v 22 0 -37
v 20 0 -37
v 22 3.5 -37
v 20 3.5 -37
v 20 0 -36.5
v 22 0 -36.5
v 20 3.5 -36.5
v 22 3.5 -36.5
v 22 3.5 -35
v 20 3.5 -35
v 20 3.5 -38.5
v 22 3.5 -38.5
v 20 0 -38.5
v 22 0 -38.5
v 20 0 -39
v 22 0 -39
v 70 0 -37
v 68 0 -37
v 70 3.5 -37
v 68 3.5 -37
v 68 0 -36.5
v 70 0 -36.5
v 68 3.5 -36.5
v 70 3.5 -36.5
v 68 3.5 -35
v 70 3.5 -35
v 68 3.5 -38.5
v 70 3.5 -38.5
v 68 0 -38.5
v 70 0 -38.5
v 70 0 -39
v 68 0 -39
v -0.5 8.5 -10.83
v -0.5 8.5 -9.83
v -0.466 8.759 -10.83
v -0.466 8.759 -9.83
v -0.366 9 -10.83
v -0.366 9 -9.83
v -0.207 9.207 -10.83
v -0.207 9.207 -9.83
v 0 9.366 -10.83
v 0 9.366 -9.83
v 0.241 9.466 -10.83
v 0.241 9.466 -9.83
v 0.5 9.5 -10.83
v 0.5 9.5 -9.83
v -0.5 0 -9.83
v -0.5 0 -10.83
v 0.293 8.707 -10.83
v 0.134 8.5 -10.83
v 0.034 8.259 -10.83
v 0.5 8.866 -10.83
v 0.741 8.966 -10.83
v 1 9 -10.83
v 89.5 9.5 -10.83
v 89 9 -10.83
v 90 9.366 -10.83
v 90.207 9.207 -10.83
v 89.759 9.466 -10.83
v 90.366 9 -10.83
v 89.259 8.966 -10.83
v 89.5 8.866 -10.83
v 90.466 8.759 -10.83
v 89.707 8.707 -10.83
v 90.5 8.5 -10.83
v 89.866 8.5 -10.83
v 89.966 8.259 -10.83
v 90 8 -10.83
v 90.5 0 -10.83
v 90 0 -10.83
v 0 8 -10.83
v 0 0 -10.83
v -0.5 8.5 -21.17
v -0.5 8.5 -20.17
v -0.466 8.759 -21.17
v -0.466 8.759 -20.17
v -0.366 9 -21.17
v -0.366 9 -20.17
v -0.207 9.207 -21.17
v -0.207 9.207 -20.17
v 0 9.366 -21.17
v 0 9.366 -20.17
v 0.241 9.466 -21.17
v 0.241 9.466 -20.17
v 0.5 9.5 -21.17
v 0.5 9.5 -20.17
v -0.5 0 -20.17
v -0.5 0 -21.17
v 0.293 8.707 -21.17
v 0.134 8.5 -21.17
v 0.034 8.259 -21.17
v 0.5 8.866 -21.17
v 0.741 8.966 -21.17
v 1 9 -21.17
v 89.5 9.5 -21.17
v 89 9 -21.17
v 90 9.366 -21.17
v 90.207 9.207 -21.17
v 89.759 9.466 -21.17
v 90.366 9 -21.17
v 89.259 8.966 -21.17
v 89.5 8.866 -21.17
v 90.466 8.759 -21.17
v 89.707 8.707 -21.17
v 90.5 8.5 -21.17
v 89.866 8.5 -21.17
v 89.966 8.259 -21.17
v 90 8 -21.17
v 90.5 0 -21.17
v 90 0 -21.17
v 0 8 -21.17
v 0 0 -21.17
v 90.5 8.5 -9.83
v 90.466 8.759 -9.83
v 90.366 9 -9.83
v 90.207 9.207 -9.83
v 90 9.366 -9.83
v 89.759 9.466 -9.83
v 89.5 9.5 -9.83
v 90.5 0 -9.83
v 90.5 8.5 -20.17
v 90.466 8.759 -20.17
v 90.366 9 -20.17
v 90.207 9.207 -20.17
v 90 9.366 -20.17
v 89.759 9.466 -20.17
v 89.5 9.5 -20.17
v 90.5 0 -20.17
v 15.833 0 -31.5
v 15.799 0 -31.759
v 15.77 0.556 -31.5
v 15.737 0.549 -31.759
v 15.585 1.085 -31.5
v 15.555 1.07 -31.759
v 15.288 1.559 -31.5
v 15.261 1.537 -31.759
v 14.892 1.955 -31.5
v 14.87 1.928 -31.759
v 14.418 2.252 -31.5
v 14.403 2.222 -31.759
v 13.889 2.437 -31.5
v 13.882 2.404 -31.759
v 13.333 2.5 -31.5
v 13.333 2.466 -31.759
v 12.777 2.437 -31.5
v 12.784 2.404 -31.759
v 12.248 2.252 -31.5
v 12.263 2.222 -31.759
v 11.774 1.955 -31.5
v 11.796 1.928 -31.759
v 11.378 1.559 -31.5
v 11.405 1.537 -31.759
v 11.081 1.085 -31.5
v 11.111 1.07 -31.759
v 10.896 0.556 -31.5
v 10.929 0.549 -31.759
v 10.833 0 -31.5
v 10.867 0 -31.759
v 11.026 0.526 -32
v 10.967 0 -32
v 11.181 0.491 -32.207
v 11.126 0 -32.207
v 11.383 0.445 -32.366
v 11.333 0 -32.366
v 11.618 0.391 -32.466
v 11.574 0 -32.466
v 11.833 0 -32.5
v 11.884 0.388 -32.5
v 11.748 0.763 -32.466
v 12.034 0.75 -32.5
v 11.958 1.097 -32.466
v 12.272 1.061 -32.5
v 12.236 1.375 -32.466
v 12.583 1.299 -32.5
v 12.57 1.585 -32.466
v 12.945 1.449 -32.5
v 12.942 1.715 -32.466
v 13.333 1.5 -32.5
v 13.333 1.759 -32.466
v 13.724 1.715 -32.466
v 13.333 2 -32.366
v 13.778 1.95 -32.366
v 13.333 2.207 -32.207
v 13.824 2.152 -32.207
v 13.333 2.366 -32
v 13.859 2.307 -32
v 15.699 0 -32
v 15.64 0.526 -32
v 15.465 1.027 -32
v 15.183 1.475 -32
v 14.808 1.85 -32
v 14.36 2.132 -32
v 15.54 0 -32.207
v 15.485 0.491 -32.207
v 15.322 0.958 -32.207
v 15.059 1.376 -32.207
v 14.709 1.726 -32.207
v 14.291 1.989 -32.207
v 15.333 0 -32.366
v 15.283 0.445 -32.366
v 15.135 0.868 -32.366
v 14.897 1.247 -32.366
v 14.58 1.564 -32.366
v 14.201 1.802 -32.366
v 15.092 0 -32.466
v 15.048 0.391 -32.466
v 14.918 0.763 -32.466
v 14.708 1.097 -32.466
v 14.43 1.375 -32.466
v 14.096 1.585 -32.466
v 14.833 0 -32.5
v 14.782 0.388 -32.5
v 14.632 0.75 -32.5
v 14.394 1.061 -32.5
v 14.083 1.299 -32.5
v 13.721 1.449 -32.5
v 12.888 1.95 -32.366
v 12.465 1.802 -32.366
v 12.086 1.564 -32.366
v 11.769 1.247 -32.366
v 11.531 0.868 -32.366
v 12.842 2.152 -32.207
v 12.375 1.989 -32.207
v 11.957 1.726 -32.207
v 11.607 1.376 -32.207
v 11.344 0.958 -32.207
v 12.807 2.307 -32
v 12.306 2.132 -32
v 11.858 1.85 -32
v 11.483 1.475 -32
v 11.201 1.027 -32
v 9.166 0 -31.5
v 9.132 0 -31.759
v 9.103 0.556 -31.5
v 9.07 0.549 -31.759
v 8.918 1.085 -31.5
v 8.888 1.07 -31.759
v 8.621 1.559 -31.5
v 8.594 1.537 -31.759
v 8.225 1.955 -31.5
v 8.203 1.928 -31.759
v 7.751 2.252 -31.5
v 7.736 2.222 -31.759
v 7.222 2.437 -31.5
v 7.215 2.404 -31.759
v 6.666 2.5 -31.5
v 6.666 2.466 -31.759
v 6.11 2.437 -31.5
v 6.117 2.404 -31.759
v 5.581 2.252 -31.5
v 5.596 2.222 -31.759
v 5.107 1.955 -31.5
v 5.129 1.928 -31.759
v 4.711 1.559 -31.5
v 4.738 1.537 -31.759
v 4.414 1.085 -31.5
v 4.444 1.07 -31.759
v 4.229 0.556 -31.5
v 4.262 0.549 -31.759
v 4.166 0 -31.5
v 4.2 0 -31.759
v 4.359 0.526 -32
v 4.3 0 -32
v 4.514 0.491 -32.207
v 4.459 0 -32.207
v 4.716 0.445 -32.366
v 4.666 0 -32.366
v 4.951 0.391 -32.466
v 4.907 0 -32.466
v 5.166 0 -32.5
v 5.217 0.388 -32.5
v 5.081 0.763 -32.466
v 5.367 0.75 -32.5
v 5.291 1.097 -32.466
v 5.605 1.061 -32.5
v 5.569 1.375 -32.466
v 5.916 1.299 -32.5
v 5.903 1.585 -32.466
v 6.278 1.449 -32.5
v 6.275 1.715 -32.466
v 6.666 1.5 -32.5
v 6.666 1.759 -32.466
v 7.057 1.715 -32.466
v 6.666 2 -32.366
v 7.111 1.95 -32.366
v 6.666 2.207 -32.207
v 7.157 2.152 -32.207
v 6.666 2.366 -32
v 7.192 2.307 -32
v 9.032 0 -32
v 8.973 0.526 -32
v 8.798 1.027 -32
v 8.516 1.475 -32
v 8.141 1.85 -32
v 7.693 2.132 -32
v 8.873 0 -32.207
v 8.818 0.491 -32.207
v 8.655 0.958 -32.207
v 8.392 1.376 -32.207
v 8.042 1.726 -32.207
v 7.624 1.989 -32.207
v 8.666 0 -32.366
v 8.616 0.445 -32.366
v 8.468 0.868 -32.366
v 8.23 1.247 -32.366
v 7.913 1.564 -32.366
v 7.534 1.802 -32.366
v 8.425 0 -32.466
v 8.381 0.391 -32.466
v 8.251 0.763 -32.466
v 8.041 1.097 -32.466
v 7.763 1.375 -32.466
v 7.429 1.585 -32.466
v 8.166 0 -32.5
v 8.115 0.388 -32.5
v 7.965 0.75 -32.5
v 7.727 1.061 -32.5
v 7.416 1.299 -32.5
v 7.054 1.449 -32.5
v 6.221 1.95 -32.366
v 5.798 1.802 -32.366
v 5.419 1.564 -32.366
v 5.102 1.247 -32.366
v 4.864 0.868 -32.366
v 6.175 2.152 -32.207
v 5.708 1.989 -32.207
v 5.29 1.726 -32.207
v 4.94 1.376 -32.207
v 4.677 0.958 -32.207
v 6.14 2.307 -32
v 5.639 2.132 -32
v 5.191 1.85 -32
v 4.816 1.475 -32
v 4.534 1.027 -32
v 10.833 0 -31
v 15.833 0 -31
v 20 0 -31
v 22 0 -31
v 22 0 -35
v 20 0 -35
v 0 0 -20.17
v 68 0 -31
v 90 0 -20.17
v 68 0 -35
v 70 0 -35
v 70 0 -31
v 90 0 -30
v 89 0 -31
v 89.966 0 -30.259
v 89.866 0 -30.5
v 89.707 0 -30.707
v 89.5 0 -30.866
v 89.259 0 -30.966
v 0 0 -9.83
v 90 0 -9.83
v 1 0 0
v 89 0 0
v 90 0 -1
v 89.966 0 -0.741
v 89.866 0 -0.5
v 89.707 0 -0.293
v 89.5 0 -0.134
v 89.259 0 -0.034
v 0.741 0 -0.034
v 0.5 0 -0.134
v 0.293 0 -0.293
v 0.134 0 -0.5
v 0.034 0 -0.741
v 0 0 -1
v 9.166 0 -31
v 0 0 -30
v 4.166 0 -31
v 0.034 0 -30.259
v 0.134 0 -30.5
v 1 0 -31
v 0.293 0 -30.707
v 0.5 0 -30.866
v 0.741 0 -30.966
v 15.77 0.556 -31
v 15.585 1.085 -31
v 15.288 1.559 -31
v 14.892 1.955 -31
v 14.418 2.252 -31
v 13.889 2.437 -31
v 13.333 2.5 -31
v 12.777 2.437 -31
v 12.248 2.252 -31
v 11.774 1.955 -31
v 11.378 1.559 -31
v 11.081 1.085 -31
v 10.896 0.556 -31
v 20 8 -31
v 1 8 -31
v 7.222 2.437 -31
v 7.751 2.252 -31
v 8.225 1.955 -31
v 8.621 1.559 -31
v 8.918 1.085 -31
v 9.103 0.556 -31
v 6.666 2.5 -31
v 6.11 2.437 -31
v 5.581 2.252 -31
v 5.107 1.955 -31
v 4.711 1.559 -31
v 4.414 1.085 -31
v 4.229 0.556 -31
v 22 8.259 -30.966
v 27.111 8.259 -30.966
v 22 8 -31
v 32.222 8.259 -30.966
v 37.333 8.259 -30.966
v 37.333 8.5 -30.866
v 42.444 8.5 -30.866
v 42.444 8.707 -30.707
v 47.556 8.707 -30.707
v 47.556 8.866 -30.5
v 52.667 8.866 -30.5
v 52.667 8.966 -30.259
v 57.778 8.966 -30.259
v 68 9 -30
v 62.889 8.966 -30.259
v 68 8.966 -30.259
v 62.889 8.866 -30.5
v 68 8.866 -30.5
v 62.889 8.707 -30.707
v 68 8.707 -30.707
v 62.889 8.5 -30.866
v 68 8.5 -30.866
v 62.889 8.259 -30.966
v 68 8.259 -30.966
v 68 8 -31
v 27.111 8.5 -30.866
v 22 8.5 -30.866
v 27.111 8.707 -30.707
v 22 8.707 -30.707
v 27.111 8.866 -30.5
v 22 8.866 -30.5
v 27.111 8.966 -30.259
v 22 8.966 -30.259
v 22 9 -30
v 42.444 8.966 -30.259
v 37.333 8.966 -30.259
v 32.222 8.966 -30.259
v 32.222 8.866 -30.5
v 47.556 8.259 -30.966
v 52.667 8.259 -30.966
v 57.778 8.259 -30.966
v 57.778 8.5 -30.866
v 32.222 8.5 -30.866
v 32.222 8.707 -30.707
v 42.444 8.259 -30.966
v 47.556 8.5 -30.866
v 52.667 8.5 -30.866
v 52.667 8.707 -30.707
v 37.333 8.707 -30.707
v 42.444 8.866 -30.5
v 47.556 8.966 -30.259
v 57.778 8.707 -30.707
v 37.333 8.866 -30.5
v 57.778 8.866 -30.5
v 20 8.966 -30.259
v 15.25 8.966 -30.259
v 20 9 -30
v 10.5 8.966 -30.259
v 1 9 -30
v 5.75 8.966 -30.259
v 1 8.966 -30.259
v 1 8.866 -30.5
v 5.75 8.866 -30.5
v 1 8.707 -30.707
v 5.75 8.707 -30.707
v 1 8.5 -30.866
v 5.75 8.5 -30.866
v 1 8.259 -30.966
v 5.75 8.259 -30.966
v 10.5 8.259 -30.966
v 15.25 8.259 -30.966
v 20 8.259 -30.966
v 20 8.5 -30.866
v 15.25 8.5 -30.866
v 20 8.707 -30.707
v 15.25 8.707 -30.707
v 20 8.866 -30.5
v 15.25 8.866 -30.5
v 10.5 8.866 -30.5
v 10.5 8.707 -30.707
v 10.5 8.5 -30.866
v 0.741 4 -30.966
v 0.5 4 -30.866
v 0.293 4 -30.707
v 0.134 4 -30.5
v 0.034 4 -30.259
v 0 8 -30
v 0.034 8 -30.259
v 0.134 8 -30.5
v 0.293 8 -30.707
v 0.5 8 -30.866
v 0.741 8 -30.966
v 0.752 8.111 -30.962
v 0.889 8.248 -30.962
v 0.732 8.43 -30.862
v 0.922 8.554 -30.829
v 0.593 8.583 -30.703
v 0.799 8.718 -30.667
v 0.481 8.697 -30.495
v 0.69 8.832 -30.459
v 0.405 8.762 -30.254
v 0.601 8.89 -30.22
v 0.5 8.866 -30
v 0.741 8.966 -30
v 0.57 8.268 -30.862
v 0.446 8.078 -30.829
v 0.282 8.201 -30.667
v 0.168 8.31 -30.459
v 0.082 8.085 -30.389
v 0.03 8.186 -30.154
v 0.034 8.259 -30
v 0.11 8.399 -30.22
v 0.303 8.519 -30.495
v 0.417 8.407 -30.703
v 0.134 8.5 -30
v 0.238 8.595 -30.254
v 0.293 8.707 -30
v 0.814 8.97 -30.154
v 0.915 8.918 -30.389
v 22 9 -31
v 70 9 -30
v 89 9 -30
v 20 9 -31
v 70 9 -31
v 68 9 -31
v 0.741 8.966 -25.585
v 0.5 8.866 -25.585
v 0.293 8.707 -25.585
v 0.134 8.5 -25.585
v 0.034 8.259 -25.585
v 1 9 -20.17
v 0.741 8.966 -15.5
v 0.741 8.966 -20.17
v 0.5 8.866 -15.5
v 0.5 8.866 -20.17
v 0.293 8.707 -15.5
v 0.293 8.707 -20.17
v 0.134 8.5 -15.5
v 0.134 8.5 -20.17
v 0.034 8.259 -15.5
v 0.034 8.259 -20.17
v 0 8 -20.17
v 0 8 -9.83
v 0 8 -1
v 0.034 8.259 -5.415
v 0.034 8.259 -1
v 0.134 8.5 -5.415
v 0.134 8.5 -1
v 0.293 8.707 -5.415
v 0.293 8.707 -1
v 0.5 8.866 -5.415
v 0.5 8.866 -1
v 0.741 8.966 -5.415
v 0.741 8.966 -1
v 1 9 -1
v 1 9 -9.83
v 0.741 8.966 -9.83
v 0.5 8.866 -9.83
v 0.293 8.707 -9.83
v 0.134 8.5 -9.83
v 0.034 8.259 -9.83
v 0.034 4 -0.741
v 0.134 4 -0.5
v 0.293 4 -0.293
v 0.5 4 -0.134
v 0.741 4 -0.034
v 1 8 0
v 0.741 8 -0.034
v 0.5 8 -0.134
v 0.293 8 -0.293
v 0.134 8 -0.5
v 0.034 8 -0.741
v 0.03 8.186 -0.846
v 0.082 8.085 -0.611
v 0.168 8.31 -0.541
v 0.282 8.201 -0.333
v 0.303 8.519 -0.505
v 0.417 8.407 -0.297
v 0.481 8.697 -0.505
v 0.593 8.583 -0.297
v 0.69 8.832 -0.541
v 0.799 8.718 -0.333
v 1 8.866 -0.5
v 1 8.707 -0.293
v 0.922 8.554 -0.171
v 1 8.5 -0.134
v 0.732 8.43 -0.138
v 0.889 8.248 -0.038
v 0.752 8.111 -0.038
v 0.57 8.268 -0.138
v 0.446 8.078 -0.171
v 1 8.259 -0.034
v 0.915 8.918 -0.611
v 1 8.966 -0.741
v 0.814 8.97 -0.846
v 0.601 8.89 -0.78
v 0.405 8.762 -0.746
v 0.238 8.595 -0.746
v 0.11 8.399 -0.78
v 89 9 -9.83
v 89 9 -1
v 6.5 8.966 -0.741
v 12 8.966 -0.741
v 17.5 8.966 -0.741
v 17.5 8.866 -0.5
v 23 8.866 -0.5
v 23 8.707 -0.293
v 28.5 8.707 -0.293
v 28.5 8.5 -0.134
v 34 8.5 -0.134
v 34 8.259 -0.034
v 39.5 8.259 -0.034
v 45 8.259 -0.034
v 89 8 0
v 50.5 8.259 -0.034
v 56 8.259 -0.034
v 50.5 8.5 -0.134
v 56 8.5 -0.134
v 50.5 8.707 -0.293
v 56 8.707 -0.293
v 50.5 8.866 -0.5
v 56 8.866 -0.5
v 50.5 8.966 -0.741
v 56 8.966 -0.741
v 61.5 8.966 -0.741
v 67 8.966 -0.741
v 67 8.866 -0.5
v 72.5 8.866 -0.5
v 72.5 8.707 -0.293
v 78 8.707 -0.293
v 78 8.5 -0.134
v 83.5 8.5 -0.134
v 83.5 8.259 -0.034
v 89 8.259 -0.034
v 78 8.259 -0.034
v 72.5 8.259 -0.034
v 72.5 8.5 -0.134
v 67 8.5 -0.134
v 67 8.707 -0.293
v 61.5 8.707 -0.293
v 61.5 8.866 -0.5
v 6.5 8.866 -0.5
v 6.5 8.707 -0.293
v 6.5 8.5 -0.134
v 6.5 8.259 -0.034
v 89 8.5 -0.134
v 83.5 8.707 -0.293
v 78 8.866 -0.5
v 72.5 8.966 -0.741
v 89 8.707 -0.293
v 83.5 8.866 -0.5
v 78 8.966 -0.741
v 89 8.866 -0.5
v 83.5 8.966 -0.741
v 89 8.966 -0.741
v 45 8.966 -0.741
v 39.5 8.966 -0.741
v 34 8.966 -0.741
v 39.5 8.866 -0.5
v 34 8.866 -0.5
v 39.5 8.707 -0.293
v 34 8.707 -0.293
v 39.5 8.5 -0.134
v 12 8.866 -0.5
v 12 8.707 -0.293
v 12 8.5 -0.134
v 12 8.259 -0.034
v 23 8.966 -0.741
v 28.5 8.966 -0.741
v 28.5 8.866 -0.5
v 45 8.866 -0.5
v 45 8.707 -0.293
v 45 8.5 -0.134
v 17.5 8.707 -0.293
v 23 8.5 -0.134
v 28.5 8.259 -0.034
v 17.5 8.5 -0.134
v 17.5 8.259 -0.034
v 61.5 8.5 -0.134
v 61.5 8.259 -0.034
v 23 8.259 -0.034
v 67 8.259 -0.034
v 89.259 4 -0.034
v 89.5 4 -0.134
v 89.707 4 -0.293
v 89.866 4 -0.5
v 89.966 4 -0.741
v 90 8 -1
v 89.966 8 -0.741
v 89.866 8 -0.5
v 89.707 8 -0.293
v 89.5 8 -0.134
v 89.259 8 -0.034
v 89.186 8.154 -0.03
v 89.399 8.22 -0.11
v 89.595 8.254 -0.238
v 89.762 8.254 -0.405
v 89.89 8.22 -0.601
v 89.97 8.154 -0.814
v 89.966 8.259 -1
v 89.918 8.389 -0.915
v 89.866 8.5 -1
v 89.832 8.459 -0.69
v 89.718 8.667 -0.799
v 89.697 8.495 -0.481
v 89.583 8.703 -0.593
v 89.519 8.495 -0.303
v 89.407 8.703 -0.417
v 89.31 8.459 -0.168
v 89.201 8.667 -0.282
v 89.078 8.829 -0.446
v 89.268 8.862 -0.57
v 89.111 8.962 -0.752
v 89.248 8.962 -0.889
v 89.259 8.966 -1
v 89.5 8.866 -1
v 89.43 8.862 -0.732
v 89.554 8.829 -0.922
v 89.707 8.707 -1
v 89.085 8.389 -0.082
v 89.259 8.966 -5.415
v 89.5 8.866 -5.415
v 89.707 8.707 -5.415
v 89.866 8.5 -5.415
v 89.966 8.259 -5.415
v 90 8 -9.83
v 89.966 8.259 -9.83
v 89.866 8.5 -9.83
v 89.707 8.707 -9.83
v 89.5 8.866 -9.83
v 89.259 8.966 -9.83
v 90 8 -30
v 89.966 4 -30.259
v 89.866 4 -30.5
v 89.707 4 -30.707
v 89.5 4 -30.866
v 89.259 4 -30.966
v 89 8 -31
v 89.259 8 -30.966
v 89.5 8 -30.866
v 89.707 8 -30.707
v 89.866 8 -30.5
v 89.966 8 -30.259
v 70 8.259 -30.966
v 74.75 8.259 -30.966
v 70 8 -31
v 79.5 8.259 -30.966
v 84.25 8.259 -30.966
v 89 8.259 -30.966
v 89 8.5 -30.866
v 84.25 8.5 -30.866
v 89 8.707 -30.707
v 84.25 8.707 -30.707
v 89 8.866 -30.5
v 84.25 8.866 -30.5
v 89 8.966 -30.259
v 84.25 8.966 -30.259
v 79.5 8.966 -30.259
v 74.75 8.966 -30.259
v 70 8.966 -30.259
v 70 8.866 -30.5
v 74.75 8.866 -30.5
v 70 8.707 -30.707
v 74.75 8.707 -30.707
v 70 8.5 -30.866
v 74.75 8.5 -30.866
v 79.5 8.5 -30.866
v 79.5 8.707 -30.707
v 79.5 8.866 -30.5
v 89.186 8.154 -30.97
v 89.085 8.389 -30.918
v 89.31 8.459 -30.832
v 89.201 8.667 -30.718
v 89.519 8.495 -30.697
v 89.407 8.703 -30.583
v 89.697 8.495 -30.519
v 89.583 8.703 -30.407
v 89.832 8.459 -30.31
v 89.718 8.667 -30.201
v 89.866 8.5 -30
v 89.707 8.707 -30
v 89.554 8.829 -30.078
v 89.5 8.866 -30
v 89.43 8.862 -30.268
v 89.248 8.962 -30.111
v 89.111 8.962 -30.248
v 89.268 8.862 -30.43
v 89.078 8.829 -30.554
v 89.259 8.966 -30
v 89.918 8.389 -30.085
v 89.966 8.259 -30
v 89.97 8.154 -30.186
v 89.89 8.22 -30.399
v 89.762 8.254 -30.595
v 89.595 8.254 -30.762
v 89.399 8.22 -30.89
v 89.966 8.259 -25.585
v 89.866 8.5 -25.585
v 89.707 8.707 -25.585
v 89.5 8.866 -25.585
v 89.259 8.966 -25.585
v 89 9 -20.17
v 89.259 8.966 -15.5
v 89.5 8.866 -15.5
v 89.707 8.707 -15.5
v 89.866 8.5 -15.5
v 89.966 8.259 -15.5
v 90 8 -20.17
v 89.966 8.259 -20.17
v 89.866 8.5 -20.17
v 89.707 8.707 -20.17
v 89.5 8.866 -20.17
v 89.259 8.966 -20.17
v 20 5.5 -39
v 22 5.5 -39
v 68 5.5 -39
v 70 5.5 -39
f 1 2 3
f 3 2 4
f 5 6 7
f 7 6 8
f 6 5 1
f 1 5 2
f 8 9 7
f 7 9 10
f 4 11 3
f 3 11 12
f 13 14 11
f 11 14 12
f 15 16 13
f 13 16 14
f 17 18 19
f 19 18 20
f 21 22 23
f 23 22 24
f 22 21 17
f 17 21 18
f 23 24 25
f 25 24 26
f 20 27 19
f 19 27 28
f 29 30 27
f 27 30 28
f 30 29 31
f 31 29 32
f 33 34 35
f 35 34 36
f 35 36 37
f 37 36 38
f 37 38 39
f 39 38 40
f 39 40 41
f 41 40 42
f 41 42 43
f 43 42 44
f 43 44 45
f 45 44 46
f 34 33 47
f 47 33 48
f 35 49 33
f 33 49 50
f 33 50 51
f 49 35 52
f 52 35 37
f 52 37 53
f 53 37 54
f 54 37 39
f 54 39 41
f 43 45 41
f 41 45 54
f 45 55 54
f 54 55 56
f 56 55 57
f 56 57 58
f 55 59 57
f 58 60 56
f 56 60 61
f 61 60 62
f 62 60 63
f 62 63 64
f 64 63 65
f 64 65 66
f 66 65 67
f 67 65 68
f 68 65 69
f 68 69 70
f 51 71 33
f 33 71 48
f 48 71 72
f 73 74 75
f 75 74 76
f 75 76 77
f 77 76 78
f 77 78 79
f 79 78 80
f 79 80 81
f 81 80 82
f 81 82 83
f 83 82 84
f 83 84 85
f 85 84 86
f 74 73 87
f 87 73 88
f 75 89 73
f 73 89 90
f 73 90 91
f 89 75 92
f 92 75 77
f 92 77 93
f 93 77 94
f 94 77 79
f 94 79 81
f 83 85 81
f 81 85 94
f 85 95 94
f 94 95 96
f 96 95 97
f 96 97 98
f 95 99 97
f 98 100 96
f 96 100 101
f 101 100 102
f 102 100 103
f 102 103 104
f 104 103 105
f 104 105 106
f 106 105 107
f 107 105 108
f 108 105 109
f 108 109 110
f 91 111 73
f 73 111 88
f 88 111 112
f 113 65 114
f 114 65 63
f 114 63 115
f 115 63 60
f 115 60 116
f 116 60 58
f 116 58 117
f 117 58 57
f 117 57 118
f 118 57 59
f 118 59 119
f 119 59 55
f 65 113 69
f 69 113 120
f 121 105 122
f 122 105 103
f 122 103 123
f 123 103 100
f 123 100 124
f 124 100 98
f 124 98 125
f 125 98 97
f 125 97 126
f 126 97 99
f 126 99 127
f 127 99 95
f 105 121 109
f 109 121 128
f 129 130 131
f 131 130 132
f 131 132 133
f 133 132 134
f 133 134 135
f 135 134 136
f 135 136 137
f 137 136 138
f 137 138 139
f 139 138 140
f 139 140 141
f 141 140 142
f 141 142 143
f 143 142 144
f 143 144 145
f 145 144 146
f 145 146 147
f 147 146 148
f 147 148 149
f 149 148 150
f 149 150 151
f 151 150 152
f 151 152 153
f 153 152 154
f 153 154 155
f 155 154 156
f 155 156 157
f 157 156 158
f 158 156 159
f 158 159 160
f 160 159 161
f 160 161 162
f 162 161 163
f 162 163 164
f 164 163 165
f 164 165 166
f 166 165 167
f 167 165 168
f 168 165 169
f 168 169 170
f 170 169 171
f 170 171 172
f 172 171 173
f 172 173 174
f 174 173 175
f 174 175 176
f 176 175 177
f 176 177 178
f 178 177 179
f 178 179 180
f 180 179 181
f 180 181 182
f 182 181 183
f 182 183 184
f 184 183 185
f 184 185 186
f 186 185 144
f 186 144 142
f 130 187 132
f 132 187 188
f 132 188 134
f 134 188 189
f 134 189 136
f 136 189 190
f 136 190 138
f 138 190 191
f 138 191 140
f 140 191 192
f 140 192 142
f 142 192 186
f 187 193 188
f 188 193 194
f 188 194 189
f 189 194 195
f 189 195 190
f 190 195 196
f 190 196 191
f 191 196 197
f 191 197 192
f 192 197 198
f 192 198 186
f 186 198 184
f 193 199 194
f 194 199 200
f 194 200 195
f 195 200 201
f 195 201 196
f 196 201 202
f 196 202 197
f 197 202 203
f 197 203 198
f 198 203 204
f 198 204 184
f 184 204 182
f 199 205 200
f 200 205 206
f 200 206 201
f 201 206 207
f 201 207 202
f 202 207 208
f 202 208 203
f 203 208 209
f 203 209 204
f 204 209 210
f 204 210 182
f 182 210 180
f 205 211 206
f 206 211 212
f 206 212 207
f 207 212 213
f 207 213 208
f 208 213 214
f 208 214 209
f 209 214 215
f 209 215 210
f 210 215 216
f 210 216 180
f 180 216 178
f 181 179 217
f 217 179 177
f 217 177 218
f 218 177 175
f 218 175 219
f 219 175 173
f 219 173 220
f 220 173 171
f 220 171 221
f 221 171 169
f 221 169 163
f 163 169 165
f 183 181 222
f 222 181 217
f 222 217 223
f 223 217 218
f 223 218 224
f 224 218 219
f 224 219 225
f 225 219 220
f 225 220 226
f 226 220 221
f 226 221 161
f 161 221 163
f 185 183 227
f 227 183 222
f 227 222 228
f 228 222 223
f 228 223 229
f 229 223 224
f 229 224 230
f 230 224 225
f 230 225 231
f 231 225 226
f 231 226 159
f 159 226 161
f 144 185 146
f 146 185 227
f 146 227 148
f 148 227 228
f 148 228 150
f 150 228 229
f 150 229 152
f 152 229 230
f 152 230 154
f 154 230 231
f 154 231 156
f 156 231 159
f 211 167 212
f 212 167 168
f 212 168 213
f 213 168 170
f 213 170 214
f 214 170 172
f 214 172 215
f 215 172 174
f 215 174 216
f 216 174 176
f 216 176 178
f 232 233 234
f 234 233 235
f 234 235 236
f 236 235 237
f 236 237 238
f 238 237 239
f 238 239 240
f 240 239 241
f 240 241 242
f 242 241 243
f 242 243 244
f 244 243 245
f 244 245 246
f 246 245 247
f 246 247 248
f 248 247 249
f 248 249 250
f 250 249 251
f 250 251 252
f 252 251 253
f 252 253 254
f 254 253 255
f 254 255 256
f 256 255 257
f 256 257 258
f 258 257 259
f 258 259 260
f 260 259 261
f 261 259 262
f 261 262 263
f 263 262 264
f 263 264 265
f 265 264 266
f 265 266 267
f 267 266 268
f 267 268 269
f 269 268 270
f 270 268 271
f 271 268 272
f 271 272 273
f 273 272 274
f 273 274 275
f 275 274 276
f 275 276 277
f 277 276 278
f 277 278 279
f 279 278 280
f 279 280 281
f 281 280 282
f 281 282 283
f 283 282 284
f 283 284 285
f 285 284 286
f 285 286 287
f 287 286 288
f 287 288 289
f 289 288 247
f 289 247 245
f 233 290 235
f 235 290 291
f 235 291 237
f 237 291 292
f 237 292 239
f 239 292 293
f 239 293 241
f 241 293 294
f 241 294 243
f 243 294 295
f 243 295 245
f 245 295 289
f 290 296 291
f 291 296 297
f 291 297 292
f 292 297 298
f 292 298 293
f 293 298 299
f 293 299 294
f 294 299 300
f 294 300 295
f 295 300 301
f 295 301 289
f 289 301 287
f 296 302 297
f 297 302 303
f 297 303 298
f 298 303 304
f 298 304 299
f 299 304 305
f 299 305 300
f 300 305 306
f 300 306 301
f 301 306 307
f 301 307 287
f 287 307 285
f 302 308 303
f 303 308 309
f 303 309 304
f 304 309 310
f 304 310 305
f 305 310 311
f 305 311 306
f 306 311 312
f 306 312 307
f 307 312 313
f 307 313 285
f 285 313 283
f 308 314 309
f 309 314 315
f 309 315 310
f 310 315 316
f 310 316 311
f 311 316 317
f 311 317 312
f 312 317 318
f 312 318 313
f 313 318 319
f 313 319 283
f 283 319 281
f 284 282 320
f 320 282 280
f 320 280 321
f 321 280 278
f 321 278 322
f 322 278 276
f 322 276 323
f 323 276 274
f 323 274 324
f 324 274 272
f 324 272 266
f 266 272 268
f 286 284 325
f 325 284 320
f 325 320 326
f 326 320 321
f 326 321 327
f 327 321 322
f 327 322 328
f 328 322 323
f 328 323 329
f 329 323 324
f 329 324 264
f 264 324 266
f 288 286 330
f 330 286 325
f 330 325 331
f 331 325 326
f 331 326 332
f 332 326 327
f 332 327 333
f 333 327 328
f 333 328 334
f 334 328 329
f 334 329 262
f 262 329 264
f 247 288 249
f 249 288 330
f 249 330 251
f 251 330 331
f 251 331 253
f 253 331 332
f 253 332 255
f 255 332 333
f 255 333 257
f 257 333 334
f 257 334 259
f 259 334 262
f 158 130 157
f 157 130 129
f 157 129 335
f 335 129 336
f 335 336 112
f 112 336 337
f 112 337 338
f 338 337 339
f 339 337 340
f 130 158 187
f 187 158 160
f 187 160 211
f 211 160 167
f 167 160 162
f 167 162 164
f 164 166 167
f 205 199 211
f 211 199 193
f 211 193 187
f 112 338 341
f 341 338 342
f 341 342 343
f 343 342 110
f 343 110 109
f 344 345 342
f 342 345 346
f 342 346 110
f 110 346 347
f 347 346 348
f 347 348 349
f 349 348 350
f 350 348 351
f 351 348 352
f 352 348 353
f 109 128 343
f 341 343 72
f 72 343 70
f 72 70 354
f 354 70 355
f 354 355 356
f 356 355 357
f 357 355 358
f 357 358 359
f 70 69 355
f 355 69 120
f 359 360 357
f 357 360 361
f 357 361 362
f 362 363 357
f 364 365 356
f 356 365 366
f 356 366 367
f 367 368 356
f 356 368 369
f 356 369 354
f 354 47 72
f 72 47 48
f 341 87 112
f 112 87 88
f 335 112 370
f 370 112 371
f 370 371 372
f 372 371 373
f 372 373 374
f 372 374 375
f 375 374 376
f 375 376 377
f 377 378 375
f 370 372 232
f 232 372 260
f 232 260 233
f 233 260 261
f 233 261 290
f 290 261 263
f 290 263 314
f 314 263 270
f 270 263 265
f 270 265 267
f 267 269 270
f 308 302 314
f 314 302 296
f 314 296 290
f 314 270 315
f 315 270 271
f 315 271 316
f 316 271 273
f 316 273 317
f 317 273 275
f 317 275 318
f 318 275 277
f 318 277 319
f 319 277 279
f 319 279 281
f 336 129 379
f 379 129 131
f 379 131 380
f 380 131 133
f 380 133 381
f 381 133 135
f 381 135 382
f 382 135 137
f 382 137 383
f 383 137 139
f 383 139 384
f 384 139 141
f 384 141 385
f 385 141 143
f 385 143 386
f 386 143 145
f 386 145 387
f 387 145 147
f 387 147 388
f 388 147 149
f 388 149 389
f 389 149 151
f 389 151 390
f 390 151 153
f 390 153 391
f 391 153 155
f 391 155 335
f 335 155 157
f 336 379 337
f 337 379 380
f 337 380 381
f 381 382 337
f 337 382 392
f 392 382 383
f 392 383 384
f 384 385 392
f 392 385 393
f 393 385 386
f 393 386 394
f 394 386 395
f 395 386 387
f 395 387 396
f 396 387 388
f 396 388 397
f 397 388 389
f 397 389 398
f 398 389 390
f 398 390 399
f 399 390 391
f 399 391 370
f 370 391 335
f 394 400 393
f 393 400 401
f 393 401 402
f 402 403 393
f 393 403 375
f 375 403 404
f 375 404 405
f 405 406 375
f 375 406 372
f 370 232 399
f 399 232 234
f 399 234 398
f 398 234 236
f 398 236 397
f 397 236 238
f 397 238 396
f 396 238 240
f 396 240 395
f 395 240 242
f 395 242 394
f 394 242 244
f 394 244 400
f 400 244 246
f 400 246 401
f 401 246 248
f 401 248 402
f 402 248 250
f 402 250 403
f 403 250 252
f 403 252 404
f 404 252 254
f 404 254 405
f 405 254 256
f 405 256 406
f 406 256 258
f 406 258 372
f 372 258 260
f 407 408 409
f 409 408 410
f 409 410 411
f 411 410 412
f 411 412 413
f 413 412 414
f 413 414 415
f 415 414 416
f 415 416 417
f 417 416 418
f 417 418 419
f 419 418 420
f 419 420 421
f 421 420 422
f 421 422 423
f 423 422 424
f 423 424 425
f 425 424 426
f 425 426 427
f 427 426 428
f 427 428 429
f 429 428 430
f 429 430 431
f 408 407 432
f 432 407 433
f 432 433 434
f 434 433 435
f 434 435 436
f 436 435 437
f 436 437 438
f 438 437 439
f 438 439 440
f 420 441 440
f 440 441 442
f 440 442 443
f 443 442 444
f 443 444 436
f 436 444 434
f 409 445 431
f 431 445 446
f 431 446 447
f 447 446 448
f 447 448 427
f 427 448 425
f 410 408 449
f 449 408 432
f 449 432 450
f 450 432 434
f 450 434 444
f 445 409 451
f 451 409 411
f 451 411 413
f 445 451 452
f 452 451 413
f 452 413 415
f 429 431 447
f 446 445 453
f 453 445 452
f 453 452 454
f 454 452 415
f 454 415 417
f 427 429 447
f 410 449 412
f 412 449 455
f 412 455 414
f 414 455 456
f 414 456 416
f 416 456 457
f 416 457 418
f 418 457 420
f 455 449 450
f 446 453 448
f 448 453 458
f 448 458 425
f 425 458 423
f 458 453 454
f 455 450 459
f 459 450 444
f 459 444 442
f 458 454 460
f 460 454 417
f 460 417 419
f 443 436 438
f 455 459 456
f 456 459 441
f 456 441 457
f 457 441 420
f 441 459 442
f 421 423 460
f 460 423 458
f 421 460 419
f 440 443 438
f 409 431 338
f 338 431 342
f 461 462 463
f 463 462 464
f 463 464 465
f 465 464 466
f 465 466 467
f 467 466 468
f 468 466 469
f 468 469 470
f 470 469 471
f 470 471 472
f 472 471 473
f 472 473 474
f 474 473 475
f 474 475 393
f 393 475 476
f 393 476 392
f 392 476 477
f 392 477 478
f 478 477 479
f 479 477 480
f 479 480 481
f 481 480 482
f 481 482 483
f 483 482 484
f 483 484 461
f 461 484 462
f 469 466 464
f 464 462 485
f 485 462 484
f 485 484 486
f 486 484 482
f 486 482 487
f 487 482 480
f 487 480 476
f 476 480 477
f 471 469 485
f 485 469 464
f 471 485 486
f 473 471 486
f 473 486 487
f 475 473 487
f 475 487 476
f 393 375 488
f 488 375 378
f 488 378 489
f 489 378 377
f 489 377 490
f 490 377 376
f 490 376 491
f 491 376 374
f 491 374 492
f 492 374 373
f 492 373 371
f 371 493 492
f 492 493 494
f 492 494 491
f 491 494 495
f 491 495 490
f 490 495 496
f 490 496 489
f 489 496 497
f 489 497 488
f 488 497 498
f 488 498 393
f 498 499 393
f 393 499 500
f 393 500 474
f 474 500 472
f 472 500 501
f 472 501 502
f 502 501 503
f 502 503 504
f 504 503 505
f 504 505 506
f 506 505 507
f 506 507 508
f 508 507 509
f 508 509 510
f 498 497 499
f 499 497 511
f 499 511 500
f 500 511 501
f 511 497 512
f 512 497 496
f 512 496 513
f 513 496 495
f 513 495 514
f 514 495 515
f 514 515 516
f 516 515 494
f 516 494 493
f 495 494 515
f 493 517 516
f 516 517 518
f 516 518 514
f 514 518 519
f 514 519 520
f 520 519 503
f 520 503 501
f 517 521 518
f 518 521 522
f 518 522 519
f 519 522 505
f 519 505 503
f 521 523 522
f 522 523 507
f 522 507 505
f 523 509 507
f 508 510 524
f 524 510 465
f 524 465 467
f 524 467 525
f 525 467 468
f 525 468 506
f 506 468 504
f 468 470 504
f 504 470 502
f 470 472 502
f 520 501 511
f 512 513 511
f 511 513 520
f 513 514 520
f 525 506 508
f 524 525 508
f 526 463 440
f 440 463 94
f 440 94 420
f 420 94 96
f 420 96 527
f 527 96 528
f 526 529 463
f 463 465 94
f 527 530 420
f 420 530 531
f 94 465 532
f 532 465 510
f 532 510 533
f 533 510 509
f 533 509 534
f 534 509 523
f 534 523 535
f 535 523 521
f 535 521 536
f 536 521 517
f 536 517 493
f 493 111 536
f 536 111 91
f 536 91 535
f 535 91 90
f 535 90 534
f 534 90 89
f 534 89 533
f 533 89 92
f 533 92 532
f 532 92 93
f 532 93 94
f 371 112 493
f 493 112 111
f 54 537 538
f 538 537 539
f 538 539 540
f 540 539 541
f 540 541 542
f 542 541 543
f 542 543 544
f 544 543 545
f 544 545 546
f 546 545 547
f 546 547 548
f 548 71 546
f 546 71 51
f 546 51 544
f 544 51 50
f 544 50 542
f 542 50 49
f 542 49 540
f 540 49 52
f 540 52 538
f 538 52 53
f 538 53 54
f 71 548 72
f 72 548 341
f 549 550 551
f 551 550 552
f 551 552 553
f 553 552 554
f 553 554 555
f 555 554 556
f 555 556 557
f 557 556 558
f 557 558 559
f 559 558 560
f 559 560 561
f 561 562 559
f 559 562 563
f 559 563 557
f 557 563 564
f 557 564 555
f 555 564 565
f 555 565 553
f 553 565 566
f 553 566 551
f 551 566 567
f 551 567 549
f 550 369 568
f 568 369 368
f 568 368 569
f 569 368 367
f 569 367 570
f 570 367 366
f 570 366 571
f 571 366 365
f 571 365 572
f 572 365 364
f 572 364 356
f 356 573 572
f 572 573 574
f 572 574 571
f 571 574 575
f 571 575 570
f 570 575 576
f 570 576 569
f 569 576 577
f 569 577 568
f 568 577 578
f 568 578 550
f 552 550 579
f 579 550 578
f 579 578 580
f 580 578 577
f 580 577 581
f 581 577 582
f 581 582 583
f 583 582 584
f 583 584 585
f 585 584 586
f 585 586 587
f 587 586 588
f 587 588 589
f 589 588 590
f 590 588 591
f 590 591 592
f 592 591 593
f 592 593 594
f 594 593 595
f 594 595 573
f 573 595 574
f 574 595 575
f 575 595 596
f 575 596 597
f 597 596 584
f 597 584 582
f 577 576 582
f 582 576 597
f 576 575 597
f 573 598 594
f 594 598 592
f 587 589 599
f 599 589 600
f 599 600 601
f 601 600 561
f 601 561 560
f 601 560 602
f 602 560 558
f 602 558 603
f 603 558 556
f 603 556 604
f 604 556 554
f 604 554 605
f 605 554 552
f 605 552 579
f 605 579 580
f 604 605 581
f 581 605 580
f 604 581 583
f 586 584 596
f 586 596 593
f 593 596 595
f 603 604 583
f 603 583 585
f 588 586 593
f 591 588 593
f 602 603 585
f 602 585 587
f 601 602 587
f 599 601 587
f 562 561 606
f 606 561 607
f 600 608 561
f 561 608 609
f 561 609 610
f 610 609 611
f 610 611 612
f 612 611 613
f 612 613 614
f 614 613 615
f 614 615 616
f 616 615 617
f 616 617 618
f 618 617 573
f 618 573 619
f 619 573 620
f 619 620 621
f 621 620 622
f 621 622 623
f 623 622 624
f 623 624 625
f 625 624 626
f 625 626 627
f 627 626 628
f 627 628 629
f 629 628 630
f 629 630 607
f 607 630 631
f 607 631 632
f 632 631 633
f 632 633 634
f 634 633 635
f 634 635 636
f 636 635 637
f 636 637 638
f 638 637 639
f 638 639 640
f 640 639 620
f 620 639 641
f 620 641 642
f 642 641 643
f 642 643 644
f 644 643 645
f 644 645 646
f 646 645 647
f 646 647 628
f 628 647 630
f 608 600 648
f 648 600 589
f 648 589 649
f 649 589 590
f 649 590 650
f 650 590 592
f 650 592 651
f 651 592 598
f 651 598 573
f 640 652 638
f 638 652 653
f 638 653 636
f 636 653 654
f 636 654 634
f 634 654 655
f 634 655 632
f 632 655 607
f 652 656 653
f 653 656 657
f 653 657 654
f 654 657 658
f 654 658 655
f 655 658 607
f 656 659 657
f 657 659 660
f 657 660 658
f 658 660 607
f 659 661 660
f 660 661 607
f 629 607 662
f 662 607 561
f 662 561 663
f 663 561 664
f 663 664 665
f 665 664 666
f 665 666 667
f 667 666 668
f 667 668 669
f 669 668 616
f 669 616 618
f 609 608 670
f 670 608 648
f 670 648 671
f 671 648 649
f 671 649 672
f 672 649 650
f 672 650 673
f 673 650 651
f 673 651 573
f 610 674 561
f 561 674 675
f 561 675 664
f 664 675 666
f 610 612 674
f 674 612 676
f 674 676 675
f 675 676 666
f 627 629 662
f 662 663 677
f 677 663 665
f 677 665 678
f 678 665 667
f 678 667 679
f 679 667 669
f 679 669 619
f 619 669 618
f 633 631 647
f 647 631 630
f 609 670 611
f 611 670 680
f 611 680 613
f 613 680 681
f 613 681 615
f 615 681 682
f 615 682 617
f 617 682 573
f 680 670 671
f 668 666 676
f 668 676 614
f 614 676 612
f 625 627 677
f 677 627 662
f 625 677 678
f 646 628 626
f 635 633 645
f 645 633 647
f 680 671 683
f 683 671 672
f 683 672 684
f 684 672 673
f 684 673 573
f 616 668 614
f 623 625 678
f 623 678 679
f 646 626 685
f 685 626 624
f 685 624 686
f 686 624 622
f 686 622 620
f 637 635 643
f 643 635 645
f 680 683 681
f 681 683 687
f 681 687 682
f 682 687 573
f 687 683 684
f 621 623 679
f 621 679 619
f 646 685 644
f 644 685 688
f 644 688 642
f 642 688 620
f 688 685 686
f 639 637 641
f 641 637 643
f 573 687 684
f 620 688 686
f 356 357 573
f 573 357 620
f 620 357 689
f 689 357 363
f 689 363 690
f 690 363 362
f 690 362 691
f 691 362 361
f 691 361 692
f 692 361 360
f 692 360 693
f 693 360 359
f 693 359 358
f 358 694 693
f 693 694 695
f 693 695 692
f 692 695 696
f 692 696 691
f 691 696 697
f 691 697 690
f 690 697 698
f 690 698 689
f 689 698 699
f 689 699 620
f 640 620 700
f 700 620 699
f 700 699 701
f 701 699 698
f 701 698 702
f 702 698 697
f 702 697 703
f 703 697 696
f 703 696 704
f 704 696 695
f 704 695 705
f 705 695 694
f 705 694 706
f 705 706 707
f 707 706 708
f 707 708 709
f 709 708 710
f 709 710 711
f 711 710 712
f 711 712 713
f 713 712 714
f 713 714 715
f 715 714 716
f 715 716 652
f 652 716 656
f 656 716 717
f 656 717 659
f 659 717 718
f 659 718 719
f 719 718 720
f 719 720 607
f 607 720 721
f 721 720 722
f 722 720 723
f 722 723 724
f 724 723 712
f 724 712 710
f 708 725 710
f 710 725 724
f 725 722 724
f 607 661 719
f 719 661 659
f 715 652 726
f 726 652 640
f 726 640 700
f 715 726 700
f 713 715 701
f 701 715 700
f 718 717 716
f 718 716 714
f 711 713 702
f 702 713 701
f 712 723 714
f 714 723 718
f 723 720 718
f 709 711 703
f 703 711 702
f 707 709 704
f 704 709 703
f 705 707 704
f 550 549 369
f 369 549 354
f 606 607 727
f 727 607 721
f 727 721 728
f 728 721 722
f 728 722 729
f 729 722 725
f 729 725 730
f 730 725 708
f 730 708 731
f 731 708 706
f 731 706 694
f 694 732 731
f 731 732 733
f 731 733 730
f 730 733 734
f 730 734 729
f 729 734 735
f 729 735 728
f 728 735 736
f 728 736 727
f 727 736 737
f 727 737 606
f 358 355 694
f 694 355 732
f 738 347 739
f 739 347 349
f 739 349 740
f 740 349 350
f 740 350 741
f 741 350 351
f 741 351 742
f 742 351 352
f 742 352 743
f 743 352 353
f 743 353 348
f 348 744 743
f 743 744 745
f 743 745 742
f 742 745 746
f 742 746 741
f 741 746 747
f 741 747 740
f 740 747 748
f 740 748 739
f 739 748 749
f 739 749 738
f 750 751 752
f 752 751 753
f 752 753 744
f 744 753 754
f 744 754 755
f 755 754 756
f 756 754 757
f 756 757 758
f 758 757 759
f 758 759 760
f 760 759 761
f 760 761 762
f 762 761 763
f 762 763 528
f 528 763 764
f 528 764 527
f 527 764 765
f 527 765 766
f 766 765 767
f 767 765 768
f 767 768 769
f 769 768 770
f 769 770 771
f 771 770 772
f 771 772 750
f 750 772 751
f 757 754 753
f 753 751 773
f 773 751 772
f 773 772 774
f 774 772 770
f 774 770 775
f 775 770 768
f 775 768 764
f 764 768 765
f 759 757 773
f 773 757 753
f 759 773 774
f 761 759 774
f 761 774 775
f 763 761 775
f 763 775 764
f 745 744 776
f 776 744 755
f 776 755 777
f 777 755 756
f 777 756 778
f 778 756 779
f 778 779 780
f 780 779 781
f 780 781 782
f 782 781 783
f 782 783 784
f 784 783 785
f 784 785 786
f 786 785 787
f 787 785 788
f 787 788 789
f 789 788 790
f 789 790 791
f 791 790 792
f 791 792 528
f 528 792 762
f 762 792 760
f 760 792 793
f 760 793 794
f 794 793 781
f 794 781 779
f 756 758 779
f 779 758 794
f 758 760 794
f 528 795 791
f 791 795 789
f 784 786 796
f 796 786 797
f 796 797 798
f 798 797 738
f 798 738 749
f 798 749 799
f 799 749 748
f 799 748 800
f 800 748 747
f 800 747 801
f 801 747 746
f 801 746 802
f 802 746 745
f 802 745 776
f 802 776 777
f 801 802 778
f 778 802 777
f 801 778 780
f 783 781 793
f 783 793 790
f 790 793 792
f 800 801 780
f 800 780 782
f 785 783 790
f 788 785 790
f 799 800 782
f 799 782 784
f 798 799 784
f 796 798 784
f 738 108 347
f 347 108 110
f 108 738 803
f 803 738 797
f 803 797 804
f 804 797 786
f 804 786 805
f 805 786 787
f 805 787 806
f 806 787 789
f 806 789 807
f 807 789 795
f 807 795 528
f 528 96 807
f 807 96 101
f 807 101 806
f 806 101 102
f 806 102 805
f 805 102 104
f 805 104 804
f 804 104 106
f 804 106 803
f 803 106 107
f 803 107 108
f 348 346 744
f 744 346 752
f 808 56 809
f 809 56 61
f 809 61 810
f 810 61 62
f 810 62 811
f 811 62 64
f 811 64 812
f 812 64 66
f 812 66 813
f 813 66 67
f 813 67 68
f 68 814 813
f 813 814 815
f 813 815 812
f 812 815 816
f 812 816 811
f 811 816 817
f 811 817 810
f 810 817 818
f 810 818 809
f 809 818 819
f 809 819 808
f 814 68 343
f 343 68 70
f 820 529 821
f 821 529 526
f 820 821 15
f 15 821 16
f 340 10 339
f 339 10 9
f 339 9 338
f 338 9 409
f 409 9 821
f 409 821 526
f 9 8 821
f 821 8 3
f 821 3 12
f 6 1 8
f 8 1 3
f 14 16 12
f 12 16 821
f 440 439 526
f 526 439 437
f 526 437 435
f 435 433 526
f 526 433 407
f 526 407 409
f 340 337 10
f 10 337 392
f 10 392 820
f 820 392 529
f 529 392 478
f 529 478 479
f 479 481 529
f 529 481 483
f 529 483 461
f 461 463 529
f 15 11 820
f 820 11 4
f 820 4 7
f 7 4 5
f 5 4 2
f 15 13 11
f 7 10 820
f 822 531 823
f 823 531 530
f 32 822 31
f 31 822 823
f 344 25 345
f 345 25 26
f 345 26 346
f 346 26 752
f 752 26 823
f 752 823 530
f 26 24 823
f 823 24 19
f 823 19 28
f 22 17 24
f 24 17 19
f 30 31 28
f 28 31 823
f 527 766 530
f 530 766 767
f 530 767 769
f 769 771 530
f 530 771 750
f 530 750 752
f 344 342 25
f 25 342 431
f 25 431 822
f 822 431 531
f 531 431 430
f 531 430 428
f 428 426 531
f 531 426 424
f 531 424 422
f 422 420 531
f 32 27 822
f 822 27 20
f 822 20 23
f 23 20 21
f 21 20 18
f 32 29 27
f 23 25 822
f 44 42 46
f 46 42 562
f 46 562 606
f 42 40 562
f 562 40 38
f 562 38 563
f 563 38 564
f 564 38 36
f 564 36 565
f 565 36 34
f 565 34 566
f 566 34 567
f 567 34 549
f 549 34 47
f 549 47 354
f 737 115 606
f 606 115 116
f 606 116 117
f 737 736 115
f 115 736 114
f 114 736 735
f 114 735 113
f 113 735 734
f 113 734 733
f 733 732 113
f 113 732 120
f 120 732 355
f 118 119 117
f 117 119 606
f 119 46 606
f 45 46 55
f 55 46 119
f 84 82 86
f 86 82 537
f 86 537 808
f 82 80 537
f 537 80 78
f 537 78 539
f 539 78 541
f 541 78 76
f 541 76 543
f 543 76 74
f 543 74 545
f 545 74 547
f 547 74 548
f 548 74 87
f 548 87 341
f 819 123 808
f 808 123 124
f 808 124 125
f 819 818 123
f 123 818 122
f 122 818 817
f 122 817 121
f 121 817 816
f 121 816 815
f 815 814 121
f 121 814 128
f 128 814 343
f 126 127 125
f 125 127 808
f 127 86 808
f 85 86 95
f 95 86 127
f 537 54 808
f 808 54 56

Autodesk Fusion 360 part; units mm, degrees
sketch "Sketch1" plane through (0, 0, 0) normal (0, 1, 0) x (1, 0, 0)
  line L0 (0, 0) -> (90, 0)
  line L1 (90, 0) -> (90, 31)
  line L2 (90, 31) -> (0, 31)
  line L3 (0, 31) -> (0, 0)
  line L4 (-3, 20.67) -> (93, 20.67) construction
  line L5 (-3, 10.33) -> (93, 10.33) construction
  line L6 (0, 21.17) -> (90, 21.17)
  line L7 (0, 20.17) -> (90, 20.17)
  line L8 (0, 9.83) -> (90, 9.83)
  line L9 (0, 10.83) -> (90, 10.83)
  line L10 (90, 20.17) -> (90.5, 20.17)
  line L11 (90.5, 20.17) -> (90.5, 21.17)
  line L12 (90.5, 21.17) -> (90, 21.17)
  line L13 (90, 21.17) -> (90, 20.17)
  line L14 (90, 10.83) -> (90.5, 10.83)
  line L15 (90.5, 10.83) -> (90.5, 9.83)
  line L16 (90.5, 9.83) -> (90, 9.83)
  line L17 (90, 9.83) -> (90, 10.83)
  line L18 (0, 21.17) -> (-0.5, 21.17)
  line L19 (-0.5, 21.17) -> (-0.5, 20.17)
  line L20 (-0.5, 20.17) -> (0, 20.17)
  line L21 (0, 20.17) -> (0, 21.17)
  line L22 (0, 9.83) -> (-0.5, 9.83)
  line L23 (-0.5, 9.83) -> (-0.5, 10.83)
  line L24 (-0.5, 10.83) -> (0, 10.83)
  line L25 (0, 10.83) -> (0, 9.83)
  line L26 (70, 39) -> (68, 39)
  line L27 (68, 39) -> (68, 38.5)
  line L28 (68, 38.5) -> (70, 38.5)
  line L29 (70, 38.5) -> (70, 39)
  line L30 (68, 37) -> (70, 37)
  line L31 (70, 37) -> (70, 36.5)
  line L32 (70, 36.5) -> (68, 36.5)
  line L33 (68, 36.5) -> (68, 37)
  line L34 (20, 37) -> (22, 37)
  line L35 (22, 37) -> (22, 36.5)
  line L36 (22, 36.5) -> (20, 36.5)
  line L37 (20, 36.5) -> (20, 37)
  line L38 (20, 38.5) -> (22, 38.5)
  line L39 (22, 38.5) -> (22, 39)
  line L40 (22, 39) -> (20, 39)
  line L41 (20, 39) -> (20, 38.5)
  dimension "d1" = 90
  dimension "d2" = 31
  dimension "d3" = 10.33
  dimension "d4" = 10.33
  dimension "d5" = 0.5
  dimension "d6" = 0.5
  dimension "d7" = 0.5
  dimension "d8" = 0.5
  dimension "d9" = 0.5
  dimension "d10" = 0.5
  dimension "d11" = 0.5
  dimension "d12" = 0.5
  dimension "d84" = 0.5
  dimension "d86" = 8
  dimension "d88" = 2
  dimension "d89" = 0.5
  dimension "d90" = 0.5
  dimension "d91" = 20
  dimension "d92" = 20
  dimension "d93" = 20
  dimension "d94" = 0.5
  dimension "d95" = 8
  dimension "d96" = 6
  dimension "d97" = 6
extrude "Extrude1" add sketch "Sketch1" along normal blind 9 contours L1 L2 L3 L6 makes body 1
extrude "Extrude2" add sketch "Sketch1" along normal blind 9 separate body contours L1 L3 L7 L9 makes body 2
extrude "Extrude3" add sketch "Sketch1" along normal blind 9 separate body contours L0 L1 L3 L8 makes body 3
extrude "Extrude4" add sketch "Sketch1" along normal blind 9.5 contours L1 L3 L6 L7 L13 L21 bodies 1 2
extrude "Extrude5" add sketch "Sketch1" along normal blind 9.5 contours L1 L3 L8 L9 L17 L25 bodies 1 3
extrude "Extrude6" add sketch "Sketch1" along normal blind 9.5 contours L1 L10 L11 L12 L13 bodies 1
extrude "Extrude7" add sketch "Sketch1" along normal blind 9.5 contours L1 L14 L15 L16 L17 bodies 1
extrude "Extrude8" add sketch "Sketch1" along normal blind 9.5 contours L3 L18 L19 L20 L21 bodies 1
extrude "Extrude9" add sketch "Sketch1" along normal blind 9.5 contours L3 L22 L23 L24 L25 bodies 1
sketch "Sketch2" plane through (0, 0, 0) normal (1, 0, 0) x (0, 0, -1)
  line L0 (39, 0) -> (31, 0)
  line L1 (31, 0) -> (31, 5.5)
  line L2 (31, 5.5) -> (39, 5.5)
  line L3 (39, 5.5) -> (39, 0)
  line L4 (31, 9) -> (39, 5.5)
  line L5 (31, 9) -> (31, 5.5)
  line L6 (39, 0) -> (35, 0)
  line L7 (35, 0) -> (35, 3.5)
  line L8 (35, 3.5) -> (39, 3.5)
  line L9 (39, 3.5) -> (39, 0)
  point P0 (31, 0)
  dimension "d33" = 8
  dimension "d34" = 8
  dimension "d35" = 5.5
  dimension "d36" = 3.5
  dimension "d37" = 4
extrude "Extrude10" add sketch "Sketch2" along normal blind 2 from surface at 68 contours L0 L1 L2 L3 L7 L8 | L2 L4 L5 bodies 1
extrude "Extrude11" add sketch "Sketch2" along normal blind 2 from surface at 20 contours L0 L1 L2 L3 L7 L8 | L2 L4 L5 bodies 1
fillet "Fillet1" radius 1 1 edges at (90, 9, -4.915) on bodies 1
fillet "Fillet2" radius 1 1 edges at (90, 9, -15.5) on bodies 1
fillet "Fillet3" radius 1 1 edges at (90, 9, -26.085) on bodies 1
fillet "Fillet4" radius 1 3 edges at (90, 4, -31) (89.7071, 8.7071, -31) (79.5, 9, -31) on bodies 1
fillet "Fillet5" radius 1 3 edges at (90, 4, 0) (89.7071, 8.7071, 0) (44.5, 9, 0) on bodies 1
fillet "Fillet6" radius 1 3 edges at (0, 4, 0) (0, 8.7071, -0.2929) (0, 9, -5.415) on bodies 1
fillet "Fillet7" radius 1 1 edges at (0, 9, -15.5) on bodies 1
fillet "Fillet8" radius 1 1 edges at (0, 9, -26.085) on bodies 1
fillet "Fillet9" radius 1 3 edges at (0, 4, -31) (0.2929, 8.7071, -31) (10.5, 9, -31) on bodies 1
fillet "Fillet10" radius 1 1 edges at (45, 9, -31) on bodies 1
sketch "Sketch3" plane through (0, 0, -31) normal (0, 0, -1) x (-1, 0, 0)
  line L0 (-1, 8) -> (-20, 8)
  line L1 (-20, 8) -> (-20, 0)
  line L2 (-20, 0) -> (-1, 0)
  line L3 (-1, 0) -> (-1, 8)
  line L4 (-6.666, -3) -> (-6.666, 13) construction
  line L5 (-13.333, -2) -> (-13.333, 13) construction
  circle A0 centre (-6.666, 0) radius 2.5
  circle A1 centre (-13.333, 0) radius 2.5
  dimension "d64" = 6.667
  dimension "d65" = 6.667
  dimension "d66" = 5
  dimension "d67" = 5
extrude "Extrude12" add sketch "Sketch3" along normal blind 1.5 contours L2 A0 picked at (-6.0551, 0.5668) bodies 1
extrude "Extrude13" add sketch "Sketch3" along normal blind 1.5 contours L2 A1 picked at (-12.6445, 0.4694) bodies 1
fillet "Fillet11" radius 1 1 edges at (6.666, 2.5, -32.5) on bodies 1
fillet "Fillet12" radius 1 1 edges at (13.333, 2.5, -32.5) on bodies 1
fillet "Fillet13" radius 1 1 edges at (90.5, 9.5, -20.67) on bodies 1
fillet "Fillet14" radius 1 1 edges at (90.5, 9.5, -10.33) on bodies 1
fillet "Fillet15" radius 1 1 edges at (-0.5, 9.5, -20.67) on bodies 1
fillet "Fillet16" radius 1 1 edges at (-0.5, 9.5, -10.33) on bodies 1
extrude "Extrude14" add sketch "Sketch1" along normal blind 3.5 contours L26 L27 L28 L29 | L30 L31 L32 L33 bodies 1
extrude "Extrude15" add sketch "Sketch1" along normal blind 3.5 contours L34 L35 L36 L37 | L38 L39 L40 L41 bodies 1
